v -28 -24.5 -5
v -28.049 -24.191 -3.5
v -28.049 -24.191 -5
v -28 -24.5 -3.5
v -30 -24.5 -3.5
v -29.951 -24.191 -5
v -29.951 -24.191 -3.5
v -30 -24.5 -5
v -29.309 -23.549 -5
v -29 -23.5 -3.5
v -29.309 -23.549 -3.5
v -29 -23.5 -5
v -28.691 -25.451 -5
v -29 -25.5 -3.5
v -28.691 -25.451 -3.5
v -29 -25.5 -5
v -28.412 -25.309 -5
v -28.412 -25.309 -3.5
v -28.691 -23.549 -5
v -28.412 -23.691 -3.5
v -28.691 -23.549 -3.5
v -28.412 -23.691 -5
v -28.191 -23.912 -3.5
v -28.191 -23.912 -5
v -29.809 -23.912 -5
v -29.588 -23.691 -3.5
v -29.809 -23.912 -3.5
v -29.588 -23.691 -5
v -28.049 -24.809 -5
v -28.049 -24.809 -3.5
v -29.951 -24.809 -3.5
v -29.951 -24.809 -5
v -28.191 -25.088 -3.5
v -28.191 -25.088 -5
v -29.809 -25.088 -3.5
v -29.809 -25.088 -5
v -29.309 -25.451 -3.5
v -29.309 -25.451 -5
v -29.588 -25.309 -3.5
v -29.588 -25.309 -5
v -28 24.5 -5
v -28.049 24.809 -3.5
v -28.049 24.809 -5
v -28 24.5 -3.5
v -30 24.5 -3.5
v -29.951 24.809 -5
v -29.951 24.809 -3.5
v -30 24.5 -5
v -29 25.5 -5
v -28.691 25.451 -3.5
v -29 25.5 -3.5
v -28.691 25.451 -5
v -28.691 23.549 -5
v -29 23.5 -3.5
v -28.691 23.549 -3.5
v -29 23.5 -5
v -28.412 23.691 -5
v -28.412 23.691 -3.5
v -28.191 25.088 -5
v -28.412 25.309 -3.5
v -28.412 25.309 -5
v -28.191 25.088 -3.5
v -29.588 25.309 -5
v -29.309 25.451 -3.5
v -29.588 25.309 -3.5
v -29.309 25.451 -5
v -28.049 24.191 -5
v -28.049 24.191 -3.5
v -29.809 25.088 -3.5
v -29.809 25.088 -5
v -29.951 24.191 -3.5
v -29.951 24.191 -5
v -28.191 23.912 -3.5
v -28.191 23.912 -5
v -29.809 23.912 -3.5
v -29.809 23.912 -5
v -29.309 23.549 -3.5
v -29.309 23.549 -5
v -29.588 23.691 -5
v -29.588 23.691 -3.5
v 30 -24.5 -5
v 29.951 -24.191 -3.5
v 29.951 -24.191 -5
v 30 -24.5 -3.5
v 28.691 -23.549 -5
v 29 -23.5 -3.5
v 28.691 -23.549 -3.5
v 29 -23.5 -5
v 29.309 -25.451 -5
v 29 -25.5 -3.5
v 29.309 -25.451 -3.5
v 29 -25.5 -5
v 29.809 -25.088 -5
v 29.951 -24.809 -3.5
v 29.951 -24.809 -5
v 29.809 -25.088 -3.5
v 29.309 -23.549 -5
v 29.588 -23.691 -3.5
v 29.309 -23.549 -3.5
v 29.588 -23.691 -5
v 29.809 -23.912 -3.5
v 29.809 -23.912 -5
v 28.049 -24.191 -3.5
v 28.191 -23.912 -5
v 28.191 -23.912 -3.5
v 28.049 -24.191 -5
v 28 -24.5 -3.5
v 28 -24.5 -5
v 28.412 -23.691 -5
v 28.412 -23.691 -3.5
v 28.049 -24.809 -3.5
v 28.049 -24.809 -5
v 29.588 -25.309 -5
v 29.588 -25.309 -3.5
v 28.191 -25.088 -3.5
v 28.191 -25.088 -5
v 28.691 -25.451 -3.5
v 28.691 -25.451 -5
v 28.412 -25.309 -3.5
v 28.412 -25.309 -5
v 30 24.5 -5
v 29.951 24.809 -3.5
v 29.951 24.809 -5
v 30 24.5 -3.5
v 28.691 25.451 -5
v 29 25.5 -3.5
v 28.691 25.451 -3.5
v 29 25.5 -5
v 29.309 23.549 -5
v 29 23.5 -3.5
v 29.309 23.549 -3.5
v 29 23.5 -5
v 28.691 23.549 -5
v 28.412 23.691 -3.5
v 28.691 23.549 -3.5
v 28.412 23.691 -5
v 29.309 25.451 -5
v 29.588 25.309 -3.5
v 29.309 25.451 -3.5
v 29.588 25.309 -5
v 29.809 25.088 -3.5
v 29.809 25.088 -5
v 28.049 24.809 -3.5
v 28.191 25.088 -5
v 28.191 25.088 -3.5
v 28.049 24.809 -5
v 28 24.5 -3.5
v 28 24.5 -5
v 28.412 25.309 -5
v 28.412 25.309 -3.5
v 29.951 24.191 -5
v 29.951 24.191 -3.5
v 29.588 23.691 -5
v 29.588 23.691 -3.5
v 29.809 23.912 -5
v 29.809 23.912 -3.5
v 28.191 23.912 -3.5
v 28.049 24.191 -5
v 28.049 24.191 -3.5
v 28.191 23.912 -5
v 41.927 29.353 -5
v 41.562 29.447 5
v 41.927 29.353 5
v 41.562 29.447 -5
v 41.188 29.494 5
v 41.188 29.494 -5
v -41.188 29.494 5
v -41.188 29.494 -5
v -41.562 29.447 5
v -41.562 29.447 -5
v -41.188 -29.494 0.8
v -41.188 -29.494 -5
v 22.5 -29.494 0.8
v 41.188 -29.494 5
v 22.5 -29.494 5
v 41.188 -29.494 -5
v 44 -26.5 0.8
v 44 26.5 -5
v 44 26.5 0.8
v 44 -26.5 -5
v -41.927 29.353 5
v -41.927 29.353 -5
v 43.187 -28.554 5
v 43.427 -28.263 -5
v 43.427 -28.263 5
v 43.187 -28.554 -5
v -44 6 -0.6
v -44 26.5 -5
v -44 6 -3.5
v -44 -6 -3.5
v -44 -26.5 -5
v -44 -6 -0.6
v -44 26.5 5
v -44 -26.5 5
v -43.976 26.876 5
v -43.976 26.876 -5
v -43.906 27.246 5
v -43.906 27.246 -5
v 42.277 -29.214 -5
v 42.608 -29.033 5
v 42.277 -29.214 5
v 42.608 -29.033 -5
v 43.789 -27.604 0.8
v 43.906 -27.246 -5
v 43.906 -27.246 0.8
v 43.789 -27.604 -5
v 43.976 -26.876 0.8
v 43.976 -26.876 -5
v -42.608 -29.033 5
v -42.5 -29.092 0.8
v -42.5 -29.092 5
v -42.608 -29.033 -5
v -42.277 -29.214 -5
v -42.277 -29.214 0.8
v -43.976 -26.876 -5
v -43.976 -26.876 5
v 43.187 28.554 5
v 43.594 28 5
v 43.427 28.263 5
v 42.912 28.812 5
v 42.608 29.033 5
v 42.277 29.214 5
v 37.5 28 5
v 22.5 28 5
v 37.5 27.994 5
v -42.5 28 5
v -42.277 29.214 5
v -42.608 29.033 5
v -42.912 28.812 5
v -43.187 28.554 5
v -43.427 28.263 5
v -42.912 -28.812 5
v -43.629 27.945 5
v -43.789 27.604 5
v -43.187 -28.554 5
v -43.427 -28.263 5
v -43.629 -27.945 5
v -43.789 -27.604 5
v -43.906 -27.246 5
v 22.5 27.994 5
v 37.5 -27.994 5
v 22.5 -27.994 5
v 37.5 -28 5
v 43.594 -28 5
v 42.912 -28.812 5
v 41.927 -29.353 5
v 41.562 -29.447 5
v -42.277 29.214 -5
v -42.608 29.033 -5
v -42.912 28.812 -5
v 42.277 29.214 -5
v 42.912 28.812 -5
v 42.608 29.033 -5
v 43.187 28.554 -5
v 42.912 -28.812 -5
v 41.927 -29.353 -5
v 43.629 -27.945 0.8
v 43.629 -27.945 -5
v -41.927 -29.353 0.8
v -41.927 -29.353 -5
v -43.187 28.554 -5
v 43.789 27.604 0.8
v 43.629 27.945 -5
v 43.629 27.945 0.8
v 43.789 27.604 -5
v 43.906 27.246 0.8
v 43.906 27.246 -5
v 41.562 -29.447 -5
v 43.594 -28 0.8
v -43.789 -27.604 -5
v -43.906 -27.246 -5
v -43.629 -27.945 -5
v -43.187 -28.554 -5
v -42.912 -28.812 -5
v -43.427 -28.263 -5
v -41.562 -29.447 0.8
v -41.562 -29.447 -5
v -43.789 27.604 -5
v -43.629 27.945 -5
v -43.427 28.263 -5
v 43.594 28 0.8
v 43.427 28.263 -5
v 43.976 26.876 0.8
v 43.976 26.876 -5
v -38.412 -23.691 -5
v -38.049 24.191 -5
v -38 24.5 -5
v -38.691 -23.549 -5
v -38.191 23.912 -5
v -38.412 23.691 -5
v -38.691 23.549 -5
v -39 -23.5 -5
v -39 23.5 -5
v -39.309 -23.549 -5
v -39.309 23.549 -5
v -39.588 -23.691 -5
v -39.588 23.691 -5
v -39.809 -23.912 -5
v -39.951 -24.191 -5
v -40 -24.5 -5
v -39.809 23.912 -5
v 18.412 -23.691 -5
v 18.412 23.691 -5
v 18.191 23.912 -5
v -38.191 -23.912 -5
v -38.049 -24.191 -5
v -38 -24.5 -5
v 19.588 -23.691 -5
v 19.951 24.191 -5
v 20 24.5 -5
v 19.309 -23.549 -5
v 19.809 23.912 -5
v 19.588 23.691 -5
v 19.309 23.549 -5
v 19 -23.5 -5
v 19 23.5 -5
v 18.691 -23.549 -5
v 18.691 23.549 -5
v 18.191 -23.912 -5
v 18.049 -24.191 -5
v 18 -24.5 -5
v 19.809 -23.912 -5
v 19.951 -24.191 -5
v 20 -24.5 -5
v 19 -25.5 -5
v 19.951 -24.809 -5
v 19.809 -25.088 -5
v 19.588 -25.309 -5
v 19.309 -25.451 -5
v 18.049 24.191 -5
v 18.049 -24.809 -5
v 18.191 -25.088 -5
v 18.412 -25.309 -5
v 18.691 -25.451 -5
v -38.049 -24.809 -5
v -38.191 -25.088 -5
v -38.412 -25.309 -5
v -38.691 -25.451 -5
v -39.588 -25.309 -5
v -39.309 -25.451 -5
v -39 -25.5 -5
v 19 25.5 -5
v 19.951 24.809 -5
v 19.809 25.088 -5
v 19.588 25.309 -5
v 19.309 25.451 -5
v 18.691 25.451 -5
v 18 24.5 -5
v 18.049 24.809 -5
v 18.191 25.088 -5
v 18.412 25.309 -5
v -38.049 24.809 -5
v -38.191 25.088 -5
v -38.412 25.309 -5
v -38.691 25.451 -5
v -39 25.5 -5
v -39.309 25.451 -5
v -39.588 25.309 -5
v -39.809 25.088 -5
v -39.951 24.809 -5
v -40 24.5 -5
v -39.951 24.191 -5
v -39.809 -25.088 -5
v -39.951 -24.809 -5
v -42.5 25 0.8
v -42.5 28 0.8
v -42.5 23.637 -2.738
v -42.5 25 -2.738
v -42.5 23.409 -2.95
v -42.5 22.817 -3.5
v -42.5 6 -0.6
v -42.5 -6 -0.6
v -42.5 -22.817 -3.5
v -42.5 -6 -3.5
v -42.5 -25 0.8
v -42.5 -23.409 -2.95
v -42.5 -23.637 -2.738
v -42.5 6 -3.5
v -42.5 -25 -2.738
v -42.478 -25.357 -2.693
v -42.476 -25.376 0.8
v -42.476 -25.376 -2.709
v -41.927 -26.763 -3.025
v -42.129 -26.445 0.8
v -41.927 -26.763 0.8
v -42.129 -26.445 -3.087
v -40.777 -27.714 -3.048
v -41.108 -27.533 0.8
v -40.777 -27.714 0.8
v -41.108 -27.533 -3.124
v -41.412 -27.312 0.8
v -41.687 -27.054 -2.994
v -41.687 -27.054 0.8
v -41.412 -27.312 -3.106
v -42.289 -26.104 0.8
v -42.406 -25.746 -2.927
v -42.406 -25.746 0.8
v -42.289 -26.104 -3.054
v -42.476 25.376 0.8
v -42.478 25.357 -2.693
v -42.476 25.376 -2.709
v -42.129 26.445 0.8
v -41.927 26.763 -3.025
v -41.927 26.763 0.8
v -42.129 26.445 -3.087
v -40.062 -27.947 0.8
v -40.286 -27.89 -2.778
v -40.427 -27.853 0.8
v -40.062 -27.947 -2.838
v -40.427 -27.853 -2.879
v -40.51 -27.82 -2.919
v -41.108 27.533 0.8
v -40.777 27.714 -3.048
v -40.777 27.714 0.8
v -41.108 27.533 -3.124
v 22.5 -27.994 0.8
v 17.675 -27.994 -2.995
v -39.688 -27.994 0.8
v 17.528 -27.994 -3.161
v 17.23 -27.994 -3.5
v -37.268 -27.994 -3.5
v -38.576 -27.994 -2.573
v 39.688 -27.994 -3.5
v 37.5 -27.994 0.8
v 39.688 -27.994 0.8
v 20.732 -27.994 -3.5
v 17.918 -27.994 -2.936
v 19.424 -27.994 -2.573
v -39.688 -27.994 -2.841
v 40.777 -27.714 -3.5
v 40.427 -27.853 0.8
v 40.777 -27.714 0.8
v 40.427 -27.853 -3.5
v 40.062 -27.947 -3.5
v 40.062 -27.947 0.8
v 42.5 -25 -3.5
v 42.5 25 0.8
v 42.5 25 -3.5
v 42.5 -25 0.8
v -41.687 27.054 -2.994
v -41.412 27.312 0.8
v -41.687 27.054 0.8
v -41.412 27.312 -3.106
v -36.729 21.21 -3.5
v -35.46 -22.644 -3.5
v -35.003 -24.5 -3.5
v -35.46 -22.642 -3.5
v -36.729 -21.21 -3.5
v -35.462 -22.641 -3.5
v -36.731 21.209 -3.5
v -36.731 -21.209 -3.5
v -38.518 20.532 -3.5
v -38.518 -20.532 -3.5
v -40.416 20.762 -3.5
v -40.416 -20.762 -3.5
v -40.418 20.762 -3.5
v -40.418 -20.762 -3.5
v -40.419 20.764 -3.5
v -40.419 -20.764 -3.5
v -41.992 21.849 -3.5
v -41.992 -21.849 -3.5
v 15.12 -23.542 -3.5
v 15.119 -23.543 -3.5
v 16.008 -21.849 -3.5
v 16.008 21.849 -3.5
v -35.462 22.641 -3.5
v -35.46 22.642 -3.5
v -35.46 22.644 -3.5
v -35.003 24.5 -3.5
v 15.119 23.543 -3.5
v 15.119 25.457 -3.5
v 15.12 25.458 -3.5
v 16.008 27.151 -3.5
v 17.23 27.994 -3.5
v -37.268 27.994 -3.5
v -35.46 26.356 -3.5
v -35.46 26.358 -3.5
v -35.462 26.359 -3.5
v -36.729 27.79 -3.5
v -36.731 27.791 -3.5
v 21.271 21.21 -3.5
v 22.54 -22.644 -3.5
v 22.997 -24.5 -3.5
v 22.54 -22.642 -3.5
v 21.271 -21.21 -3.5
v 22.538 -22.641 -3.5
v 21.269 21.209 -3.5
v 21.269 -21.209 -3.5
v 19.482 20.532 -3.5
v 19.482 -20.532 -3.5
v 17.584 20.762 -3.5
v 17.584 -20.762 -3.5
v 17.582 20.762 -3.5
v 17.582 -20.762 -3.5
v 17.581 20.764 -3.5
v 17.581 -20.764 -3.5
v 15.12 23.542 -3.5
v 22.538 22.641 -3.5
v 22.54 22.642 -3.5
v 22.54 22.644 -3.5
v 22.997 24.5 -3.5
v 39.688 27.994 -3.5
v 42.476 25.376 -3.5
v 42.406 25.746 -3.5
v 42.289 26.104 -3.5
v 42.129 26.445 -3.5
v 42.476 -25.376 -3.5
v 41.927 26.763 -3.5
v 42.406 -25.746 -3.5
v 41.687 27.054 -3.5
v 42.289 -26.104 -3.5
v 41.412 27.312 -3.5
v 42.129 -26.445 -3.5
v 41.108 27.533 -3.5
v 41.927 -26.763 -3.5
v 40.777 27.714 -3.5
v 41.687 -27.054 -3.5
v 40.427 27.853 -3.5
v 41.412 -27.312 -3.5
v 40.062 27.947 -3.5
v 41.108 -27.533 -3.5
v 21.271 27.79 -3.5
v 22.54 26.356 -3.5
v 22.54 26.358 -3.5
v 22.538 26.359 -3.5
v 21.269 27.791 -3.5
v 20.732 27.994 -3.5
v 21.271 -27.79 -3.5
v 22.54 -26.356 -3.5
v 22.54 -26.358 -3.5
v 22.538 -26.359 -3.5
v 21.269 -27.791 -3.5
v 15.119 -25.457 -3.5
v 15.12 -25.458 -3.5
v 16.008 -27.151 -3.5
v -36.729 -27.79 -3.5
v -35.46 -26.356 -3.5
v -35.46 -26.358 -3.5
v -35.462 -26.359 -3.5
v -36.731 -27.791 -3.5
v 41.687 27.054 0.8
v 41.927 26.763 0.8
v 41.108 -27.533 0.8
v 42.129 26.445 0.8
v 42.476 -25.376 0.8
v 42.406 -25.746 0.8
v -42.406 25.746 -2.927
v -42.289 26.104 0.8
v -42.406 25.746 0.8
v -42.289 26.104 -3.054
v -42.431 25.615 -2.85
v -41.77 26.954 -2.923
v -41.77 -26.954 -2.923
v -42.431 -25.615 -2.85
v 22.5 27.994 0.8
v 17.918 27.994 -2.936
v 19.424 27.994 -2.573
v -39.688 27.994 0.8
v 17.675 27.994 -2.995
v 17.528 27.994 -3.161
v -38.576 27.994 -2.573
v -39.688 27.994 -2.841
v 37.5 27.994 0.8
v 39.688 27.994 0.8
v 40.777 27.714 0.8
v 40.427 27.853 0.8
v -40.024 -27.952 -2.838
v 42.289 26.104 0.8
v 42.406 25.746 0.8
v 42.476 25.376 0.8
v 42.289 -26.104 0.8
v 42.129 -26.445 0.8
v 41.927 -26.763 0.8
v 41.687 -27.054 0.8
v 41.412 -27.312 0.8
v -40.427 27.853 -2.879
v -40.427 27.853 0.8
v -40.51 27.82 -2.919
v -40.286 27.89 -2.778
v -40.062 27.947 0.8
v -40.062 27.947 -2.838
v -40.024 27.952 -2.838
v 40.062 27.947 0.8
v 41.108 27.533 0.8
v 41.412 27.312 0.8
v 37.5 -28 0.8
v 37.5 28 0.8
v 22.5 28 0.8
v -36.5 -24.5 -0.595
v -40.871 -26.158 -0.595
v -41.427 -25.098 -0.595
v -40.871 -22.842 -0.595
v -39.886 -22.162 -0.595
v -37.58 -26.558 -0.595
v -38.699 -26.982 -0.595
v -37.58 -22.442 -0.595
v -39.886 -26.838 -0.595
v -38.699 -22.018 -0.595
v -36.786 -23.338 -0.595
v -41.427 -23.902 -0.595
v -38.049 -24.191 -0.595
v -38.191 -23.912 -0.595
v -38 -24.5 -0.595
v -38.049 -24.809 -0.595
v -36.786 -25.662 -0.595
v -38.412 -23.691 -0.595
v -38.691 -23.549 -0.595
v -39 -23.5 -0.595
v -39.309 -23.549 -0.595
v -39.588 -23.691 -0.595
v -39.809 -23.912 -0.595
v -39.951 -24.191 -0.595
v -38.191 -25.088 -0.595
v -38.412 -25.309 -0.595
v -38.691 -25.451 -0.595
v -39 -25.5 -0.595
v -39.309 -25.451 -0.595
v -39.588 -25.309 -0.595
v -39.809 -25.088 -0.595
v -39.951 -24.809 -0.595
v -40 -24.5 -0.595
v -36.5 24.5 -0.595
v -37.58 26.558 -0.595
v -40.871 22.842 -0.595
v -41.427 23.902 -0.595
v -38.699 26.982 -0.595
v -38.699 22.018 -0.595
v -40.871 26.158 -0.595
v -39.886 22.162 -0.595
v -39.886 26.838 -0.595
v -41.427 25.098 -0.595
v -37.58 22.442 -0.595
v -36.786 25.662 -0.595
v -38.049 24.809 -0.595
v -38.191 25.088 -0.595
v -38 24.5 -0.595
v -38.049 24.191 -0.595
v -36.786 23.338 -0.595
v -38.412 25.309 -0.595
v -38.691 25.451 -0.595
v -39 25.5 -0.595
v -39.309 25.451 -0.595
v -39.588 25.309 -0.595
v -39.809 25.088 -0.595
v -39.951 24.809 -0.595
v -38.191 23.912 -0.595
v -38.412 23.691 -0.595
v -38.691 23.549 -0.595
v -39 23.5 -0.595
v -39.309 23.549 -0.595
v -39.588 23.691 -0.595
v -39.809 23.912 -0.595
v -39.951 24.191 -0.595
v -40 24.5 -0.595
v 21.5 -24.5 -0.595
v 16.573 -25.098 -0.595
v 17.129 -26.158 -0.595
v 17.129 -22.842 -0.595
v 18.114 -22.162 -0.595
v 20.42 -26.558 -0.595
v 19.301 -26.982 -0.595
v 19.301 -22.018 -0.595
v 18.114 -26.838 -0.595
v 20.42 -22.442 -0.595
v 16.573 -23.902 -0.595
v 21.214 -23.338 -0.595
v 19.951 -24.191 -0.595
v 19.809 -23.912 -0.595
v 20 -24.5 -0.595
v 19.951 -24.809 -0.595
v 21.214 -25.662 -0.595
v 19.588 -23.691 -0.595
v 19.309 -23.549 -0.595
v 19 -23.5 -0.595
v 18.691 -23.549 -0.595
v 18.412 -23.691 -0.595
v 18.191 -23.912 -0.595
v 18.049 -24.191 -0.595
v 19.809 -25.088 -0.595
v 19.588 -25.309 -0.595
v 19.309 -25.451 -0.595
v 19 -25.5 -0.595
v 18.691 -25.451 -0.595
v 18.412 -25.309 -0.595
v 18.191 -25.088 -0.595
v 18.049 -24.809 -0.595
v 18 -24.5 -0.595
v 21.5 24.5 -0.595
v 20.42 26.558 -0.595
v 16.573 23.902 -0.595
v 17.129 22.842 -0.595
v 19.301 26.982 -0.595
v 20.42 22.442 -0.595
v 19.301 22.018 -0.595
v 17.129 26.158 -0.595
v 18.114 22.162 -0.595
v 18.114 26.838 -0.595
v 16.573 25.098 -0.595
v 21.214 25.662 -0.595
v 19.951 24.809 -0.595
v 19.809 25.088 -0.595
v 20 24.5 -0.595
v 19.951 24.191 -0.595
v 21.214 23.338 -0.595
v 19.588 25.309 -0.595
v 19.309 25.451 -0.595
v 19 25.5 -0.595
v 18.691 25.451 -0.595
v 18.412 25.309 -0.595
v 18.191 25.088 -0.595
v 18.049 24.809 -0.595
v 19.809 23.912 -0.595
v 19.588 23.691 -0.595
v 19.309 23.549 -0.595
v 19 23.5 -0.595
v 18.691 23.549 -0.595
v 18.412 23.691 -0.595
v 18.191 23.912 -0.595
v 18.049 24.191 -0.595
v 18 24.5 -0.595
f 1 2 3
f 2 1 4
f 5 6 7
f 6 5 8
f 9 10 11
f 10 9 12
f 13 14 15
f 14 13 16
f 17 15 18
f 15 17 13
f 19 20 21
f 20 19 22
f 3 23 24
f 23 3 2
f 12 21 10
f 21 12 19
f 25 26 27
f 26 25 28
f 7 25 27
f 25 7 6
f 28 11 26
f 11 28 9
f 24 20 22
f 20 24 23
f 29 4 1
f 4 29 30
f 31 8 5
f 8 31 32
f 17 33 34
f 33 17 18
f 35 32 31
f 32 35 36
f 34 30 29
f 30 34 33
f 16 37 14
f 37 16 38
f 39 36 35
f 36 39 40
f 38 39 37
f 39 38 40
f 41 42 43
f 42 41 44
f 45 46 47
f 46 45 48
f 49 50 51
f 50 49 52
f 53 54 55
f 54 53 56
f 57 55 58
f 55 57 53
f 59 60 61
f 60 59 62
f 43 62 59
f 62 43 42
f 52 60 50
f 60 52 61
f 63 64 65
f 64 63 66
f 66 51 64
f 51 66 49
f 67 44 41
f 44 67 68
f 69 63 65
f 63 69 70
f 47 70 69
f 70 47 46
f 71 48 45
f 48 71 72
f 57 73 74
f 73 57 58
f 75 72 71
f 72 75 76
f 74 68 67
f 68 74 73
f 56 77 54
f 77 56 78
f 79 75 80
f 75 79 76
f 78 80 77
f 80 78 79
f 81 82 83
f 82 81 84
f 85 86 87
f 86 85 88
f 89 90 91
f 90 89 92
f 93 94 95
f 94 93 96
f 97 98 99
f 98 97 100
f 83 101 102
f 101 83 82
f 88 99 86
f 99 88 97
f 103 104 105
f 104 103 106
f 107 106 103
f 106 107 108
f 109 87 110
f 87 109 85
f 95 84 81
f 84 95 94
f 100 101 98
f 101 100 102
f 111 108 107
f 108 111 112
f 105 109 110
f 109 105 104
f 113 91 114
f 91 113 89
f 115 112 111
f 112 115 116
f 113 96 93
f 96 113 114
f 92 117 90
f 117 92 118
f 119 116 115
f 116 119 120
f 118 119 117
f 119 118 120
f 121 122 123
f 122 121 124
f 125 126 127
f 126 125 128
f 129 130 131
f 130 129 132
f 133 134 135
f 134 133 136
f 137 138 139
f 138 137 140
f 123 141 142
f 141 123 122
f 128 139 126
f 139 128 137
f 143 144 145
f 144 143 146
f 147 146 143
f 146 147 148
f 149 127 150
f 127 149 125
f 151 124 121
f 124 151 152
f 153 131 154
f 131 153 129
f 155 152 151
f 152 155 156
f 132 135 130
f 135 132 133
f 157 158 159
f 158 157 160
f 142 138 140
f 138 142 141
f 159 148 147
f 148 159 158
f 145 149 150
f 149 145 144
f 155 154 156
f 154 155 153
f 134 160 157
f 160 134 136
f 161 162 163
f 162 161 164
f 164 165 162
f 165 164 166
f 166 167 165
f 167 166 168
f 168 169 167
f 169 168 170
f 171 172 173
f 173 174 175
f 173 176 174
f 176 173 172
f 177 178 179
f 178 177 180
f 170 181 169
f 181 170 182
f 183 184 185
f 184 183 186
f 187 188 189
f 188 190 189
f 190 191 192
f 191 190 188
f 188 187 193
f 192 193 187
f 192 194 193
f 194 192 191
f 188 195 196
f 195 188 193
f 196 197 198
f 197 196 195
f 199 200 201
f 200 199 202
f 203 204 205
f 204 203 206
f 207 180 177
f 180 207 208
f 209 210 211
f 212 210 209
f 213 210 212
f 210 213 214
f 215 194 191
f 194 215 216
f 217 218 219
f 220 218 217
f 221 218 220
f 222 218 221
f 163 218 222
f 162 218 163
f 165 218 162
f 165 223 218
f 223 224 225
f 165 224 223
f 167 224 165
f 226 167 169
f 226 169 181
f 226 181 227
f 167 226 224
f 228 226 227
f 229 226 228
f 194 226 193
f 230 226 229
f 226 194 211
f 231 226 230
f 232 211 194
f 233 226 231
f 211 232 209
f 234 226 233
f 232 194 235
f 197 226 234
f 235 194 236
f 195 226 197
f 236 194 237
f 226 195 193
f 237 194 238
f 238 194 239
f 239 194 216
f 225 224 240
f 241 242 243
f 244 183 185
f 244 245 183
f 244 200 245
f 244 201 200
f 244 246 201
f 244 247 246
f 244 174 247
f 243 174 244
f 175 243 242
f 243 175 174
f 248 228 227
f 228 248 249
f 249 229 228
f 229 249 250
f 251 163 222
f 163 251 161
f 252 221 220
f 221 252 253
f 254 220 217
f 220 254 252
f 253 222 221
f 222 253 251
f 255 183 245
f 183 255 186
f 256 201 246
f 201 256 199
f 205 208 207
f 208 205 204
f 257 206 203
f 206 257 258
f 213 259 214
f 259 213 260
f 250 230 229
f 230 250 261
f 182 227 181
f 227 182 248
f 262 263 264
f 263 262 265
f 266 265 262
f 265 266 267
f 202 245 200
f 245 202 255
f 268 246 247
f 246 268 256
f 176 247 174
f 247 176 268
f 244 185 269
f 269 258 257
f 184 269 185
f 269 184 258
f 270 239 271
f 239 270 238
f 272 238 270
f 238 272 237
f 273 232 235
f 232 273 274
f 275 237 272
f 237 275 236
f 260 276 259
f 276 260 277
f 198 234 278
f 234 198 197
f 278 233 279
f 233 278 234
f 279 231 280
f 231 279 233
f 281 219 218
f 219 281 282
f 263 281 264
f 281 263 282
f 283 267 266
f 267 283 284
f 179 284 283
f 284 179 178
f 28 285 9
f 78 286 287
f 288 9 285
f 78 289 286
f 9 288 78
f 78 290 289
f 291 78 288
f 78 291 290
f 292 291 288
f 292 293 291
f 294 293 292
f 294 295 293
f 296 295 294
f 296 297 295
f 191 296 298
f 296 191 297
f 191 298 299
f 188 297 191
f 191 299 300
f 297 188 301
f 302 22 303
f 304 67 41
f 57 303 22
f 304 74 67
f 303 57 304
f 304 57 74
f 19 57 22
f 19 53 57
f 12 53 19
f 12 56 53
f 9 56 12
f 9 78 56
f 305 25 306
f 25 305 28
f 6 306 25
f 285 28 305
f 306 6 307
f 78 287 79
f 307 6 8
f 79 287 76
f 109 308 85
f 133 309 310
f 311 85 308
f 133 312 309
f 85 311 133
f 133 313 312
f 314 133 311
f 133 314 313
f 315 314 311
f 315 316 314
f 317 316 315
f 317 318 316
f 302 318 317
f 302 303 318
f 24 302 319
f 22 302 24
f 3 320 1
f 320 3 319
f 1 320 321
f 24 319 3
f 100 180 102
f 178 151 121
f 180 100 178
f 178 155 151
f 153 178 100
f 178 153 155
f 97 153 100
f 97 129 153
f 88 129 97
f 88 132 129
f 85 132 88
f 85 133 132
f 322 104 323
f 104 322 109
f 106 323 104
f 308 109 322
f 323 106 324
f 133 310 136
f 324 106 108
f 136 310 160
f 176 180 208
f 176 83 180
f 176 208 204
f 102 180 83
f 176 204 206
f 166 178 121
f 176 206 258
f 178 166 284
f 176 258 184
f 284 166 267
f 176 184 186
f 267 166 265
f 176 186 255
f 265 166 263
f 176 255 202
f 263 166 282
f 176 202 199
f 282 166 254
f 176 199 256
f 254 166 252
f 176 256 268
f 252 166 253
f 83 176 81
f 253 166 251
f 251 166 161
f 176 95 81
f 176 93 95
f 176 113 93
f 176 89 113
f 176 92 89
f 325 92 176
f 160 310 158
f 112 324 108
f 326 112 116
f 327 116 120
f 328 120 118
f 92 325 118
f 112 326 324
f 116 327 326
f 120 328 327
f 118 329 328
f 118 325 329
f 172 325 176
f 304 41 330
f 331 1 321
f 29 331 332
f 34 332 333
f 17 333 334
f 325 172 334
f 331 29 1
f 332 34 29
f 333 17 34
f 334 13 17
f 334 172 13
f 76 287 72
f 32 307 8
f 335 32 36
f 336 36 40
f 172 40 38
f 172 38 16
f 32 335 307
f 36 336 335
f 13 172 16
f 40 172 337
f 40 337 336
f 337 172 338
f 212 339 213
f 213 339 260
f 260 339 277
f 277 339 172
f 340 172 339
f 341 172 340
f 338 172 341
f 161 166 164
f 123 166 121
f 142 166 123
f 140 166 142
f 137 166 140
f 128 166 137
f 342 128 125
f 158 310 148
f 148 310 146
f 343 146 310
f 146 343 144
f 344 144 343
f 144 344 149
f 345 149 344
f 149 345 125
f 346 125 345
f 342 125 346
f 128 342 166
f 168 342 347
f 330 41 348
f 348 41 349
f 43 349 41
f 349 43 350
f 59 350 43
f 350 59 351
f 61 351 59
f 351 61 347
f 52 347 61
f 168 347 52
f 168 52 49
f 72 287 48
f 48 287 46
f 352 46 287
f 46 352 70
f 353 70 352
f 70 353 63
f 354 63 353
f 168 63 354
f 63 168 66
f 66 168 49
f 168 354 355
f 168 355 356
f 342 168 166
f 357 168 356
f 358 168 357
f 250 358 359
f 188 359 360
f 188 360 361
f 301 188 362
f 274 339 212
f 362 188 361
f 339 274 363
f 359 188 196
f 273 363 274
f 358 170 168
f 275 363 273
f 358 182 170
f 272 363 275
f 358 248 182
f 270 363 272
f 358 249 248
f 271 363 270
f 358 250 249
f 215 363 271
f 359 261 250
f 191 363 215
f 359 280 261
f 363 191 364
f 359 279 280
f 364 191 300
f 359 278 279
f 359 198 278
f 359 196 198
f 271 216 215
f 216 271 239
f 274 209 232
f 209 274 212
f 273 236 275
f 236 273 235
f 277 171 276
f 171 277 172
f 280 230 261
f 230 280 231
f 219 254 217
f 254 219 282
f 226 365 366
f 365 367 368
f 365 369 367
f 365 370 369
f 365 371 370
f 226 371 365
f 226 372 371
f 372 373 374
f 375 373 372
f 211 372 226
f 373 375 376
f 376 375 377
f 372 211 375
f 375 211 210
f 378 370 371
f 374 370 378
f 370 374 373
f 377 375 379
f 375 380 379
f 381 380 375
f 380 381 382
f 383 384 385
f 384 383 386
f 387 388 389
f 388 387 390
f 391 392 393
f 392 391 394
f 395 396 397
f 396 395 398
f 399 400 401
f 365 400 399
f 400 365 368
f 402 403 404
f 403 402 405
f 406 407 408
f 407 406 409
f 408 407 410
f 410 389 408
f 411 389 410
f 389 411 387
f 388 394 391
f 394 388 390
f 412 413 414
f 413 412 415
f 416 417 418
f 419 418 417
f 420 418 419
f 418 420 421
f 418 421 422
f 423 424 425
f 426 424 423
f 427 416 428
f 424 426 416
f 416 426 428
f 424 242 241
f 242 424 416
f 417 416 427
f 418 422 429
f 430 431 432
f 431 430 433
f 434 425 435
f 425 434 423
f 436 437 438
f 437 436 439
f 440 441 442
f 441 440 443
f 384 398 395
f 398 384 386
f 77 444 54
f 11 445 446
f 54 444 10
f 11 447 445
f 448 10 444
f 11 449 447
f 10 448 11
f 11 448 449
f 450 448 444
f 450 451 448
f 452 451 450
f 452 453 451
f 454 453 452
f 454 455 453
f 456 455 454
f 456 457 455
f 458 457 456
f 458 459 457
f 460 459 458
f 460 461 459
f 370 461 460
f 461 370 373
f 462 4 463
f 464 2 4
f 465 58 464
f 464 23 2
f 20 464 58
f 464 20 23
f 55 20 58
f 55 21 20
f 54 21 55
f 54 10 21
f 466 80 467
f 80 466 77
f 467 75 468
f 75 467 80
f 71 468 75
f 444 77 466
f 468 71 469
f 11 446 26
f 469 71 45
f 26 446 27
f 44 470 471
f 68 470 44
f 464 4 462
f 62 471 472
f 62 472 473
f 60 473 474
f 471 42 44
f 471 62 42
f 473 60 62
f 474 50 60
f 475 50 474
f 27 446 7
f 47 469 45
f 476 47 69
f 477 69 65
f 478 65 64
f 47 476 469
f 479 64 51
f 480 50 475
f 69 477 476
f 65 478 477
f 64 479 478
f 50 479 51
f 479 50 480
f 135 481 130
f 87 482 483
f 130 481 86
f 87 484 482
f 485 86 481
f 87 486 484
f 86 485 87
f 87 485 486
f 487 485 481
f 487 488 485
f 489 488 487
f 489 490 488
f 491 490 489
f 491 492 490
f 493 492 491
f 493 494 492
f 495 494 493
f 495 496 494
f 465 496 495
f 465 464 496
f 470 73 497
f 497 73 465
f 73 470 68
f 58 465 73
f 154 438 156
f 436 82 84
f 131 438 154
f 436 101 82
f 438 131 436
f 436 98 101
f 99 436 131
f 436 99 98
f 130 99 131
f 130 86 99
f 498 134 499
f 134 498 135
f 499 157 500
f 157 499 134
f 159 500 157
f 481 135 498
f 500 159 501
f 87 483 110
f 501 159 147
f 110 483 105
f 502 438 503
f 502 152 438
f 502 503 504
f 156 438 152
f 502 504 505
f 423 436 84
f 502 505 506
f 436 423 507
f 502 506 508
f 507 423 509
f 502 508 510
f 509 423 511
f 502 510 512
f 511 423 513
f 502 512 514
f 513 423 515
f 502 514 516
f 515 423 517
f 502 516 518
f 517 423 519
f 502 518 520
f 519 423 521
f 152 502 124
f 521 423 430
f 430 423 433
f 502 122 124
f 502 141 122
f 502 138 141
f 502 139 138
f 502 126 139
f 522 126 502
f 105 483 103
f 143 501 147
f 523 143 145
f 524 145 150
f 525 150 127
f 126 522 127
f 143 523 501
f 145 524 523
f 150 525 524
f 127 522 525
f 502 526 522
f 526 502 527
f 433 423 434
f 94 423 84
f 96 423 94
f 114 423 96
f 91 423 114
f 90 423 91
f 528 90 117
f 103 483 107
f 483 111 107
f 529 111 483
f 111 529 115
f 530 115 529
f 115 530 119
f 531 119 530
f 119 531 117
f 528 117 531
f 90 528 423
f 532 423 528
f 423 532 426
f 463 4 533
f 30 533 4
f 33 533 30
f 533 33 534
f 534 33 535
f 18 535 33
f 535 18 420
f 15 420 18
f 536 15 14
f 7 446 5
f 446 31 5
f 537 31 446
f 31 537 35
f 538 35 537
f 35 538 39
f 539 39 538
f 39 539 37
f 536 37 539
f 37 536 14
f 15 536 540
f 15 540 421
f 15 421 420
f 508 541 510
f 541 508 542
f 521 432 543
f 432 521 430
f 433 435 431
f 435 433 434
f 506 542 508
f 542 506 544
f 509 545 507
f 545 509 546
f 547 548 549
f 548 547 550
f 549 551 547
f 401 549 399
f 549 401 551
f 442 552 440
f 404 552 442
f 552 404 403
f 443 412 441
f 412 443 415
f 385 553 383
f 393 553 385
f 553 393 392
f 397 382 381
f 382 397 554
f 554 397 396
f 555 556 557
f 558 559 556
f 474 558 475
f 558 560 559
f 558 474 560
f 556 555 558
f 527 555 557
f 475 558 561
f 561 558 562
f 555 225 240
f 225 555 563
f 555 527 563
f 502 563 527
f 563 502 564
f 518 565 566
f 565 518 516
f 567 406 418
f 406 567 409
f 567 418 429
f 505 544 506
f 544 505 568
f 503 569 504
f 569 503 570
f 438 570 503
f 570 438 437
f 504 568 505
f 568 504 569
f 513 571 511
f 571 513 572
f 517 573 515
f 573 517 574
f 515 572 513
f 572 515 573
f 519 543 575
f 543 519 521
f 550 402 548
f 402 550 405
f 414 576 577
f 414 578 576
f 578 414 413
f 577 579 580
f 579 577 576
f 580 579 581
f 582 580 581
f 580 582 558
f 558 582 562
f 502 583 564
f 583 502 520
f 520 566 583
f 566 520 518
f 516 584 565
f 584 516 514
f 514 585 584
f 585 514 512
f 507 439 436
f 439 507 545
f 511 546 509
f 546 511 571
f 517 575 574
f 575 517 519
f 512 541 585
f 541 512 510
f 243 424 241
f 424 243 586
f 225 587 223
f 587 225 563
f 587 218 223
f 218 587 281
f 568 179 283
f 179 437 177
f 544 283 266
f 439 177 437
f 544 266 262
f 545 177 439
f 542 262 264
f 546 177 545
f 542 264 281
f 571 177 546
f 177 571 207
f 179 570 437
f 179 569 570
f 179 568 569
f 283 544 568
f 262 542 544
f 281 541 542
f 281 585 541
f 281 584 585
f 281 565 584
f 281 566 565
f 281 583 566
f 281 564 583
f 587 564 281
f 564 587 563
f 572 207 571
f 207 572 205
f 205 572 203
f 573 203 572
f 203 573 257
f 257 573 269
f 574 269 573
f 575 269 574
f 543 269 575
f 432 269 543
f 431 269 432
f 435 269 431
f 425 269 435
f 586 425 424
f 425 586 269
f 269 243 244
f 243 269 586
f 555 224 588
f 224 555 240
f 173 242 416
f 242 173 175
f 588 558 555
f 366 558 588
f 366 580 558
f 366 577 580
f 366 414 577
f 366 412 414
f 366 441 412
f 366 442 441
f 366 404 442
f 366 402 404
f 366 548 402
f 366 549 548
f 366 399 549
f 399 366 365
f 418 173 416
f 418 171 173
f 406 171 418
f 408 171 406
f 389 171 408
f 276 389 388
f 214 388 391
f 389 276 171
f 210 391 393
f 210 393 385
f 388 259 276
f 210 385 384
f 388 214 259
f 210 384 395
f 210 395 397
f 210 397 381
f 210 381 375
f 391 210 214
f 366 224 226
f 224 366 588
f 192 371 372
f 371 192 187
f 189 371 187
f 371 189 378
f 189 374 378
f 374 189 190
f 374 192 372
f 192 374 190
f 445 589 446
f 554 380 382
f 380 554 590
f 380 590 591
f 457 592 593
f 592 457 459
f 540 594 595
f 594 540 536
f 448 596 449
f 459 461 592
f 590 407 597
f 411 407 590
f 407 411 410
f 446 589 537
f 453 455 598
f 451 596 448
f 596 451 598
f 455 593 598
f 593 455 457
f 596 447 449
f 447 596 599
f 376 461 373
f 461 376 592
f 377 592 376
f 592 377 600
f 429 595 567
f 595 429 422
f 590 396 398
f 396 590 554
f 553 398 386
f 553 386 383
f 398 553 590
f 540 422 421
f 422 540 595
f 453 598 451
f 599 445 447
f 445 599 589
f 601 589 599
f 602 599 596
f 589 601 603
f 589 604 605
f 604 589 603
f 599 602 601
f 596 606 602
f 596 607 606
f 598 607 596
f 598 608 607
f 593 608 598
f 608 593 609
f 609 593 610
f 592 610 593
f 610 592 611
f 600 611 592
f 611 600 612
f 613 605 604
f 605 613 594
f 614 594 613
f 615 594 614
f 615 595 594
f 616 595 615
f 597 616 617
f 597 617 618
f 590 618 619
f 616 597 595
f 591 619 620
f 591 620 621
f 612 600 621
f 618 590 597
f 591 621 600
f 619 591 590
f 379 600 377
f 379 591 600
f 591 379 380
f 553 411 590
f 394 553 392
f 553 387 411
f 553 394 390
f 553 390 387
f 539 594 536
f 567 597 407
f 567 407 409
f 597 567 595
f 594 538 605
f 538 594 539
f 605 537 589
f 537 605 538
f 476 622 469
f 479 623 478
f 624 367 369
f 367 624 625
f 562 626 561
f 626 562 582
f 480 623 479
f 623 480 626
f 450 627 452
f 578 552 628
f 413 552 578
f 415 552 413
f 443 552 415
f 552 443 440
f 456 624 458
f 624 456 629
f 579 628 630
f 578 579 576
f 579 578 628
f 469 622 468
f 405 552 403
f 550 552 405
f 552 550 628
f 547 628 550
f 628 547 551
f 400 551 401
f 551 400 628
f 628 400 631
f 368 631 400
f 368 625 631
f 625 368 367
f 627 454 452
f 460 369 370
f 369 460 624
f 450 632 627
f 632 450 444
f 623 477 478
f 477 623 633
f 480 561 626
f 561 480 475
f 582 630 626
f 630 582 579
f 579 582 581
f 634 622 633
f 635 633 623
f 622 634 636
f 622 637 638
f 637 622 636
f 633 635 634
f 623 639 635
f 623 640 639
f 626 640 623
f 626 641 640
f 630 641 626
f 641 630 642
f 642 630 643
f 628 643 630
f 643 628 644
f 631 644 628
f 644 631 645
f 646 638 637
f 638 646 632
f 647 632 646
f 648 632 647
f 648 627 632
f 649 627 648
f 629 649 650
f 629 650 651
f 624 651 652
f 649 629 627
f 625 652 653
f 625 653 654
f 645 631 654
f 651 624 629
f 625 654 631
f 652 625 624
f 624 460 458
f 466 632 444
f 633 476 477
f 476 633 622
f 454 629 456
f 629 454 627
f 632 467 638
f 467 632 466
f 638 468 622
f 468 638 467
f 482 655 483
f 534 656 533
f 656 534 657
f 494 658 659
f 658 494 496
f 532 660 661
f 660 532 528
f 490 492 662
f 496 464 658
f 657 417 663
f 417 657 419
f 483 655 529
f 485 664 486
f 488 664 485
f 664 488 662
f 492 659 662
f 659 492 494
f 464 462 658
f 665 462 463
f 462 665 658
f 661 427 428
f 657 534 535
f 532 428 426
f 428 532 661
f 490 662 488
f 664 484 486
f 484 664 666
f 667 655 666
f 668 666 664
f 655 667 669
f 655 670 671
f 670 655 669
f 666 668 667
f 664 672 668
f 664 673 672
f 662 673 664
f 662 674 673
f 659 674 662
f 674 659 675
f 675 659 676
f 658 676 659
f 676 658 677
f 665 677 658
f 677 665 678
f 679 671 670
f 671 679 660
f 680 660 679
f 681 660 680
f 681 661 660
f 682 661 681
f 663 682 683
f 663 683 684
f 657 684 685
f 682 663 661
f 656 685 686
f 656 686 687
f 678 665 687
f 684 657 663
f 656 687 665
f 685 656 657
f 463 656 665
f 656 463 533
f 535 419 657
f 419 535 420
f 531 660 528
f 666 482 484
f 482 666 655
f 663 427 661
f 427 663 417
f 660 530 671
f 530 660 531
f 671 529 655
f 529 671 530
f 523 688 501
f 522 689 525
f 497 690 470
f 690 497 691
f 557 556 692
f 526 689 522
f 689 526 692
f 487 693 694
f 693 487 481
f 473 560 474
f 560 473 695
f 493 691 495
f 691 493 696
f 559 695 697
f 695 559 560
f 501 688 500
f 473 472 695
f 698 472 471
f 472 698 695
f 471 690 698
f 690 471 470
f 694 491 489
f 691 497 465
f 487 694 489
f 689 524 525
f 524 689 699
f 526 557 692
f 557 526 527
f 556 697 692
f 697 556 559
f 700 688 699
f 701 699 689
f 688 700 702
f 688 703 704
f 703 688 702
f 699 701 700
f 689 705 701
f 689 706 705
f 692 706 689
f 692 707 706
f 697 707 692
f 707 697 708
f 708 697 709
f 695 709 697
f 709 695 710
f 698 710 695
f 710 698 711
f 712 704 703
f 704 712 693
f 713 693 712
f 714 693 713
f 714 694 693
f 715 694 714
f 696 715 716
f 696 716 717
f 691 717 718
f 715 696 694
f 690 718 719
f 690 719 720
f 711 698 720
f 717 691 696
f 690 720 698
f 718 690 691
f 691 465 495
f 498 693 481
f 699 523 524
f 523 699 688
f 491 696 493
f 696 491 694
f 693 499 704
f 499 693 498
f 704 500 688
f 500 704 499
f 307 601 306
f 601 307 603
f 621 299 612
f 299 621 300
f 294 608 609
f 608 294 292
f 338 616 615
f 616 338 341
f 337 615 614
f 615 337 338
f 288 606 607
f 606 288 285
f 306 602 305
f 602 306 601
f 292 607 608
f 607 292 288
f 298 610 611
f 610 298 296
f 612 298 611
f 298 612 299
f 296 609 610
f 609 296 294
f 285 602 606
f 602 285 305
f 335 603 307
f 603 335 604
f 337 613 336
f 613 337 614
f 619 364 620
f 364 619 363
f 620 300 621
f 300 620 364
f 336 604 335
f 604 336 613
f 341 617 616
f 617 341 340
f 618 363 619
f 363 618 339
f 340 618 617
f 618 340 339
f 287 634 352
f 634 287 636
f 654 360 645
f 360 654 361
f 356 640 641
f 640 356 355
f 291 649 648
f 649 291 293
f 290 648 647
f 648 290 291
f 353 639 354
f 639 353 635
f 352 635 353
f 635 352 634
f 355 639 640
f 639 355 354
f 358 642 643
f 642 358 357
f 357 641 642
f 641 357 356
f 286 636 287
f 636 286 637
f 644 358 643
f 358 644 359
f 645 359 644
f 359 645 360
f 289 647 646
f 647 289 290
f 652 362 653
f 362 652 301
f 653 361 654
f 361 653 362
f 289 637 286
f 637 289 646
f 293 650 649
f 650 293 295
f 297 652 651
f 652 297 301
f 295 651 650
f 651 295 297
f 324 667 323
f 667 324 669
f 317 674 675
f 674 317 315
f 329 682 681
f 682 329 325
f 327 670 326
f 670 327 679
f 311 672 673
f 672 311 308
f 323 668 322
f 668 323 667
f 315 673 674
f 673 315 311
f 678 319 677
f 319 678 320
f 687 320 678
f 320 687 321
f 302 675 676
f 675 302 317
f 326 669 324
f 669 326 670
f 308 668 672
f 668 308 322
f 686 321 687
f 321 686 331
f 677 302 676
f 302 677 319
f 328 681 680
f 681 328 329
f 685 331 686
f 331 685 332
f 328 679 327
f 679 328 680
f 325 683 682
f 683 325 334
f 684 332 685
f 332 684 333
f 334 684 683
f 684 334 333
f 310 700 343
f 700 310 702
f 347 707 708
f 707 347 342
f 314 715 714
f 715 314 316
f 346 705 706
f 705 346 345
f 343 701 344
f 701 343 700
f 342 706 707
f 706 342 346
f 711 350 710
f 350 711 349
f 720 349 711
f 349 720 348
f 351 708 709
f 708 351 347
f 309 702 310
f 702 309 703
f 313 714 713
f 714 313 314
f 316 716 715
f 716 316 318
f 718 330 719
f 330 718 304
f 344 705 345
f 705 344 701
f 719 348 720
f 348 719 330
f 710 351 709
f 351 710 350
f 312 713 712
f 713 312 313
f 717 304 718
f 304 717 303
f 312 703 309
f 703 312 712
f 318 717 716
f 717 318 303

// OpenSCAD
// surface(file="raspi.png", invert=true, center=true);

carte = [85,56,1.4];
dessous = 3.80-1.4 + 0.5;

ep = 1.5;


*minkowski() {
    cube([carte.x-6,carte.y-6,carte.z],center=true);
    cylinder(r=3,h=0.0001,$fn=50,center=true);
}

difference() {
    union() {
        difference() {
        // Forme générale    
            minkowski() {
                cube([carte.x - 6 + 2 * ep, carte.y - 6 + 2 * ep, 10],center=true);
                cylinder(r=3, h=0.0001, $fn=50, center=true);
            }

        // Evidemment carte
            translate([0,0,ep]) minkowski() {
                cube([carte.x - 6, carte.y - 6, 10],center=true);
                cylinder(r=3, h=0.0001, $fn=50, center=true);
            }
         
        // Evidemment gros connecteurs
            translate([carte.x/2, 0, ep+dessous+carte.z]) cube([10, carte.y, 10], center=true);

        // Evidemment petits connecteurs
            translate([-(carte.x-65)/2, -5/2, ep+dessous+carte.z]) cube([65,carte.y+5, 10],center=true);

        // Evidemment carte SD    
            translate([-carte.x/2,0,dessous/2-10/2+ep]) cube([5,12,dessous],center=true);
            
        // Trous vis fixation (diam 2)
            for (x=[3.5,58+3.5],y=[3.5,49+3.5]) translate([x-carte.x/2+10,y-carte.y/2,-10/2]) cylinder(d=2,h=5,$fn=20,center=true);
        }    

        // Pieds carte avec trous de fixation
        for (x=[3.5,58+3.5],y=[3.5,49+3.5]) translate([x-carte.x/2,y-carte.y/2,-10/2+dessous/2+ep]) cylinder(d1=8,d2=5,h=dessous+0.01,center=true);
    }

// Pieds carte avec trous de fixation
    for (x=[3.5,58+3.5],y=[3.5,49+3.5]) translate([x-carte.x/2,y-carte.y/2,-10/2+dessous/2+ep]) cylinder(d=2,h=10,$fn=20,center=true);
}
